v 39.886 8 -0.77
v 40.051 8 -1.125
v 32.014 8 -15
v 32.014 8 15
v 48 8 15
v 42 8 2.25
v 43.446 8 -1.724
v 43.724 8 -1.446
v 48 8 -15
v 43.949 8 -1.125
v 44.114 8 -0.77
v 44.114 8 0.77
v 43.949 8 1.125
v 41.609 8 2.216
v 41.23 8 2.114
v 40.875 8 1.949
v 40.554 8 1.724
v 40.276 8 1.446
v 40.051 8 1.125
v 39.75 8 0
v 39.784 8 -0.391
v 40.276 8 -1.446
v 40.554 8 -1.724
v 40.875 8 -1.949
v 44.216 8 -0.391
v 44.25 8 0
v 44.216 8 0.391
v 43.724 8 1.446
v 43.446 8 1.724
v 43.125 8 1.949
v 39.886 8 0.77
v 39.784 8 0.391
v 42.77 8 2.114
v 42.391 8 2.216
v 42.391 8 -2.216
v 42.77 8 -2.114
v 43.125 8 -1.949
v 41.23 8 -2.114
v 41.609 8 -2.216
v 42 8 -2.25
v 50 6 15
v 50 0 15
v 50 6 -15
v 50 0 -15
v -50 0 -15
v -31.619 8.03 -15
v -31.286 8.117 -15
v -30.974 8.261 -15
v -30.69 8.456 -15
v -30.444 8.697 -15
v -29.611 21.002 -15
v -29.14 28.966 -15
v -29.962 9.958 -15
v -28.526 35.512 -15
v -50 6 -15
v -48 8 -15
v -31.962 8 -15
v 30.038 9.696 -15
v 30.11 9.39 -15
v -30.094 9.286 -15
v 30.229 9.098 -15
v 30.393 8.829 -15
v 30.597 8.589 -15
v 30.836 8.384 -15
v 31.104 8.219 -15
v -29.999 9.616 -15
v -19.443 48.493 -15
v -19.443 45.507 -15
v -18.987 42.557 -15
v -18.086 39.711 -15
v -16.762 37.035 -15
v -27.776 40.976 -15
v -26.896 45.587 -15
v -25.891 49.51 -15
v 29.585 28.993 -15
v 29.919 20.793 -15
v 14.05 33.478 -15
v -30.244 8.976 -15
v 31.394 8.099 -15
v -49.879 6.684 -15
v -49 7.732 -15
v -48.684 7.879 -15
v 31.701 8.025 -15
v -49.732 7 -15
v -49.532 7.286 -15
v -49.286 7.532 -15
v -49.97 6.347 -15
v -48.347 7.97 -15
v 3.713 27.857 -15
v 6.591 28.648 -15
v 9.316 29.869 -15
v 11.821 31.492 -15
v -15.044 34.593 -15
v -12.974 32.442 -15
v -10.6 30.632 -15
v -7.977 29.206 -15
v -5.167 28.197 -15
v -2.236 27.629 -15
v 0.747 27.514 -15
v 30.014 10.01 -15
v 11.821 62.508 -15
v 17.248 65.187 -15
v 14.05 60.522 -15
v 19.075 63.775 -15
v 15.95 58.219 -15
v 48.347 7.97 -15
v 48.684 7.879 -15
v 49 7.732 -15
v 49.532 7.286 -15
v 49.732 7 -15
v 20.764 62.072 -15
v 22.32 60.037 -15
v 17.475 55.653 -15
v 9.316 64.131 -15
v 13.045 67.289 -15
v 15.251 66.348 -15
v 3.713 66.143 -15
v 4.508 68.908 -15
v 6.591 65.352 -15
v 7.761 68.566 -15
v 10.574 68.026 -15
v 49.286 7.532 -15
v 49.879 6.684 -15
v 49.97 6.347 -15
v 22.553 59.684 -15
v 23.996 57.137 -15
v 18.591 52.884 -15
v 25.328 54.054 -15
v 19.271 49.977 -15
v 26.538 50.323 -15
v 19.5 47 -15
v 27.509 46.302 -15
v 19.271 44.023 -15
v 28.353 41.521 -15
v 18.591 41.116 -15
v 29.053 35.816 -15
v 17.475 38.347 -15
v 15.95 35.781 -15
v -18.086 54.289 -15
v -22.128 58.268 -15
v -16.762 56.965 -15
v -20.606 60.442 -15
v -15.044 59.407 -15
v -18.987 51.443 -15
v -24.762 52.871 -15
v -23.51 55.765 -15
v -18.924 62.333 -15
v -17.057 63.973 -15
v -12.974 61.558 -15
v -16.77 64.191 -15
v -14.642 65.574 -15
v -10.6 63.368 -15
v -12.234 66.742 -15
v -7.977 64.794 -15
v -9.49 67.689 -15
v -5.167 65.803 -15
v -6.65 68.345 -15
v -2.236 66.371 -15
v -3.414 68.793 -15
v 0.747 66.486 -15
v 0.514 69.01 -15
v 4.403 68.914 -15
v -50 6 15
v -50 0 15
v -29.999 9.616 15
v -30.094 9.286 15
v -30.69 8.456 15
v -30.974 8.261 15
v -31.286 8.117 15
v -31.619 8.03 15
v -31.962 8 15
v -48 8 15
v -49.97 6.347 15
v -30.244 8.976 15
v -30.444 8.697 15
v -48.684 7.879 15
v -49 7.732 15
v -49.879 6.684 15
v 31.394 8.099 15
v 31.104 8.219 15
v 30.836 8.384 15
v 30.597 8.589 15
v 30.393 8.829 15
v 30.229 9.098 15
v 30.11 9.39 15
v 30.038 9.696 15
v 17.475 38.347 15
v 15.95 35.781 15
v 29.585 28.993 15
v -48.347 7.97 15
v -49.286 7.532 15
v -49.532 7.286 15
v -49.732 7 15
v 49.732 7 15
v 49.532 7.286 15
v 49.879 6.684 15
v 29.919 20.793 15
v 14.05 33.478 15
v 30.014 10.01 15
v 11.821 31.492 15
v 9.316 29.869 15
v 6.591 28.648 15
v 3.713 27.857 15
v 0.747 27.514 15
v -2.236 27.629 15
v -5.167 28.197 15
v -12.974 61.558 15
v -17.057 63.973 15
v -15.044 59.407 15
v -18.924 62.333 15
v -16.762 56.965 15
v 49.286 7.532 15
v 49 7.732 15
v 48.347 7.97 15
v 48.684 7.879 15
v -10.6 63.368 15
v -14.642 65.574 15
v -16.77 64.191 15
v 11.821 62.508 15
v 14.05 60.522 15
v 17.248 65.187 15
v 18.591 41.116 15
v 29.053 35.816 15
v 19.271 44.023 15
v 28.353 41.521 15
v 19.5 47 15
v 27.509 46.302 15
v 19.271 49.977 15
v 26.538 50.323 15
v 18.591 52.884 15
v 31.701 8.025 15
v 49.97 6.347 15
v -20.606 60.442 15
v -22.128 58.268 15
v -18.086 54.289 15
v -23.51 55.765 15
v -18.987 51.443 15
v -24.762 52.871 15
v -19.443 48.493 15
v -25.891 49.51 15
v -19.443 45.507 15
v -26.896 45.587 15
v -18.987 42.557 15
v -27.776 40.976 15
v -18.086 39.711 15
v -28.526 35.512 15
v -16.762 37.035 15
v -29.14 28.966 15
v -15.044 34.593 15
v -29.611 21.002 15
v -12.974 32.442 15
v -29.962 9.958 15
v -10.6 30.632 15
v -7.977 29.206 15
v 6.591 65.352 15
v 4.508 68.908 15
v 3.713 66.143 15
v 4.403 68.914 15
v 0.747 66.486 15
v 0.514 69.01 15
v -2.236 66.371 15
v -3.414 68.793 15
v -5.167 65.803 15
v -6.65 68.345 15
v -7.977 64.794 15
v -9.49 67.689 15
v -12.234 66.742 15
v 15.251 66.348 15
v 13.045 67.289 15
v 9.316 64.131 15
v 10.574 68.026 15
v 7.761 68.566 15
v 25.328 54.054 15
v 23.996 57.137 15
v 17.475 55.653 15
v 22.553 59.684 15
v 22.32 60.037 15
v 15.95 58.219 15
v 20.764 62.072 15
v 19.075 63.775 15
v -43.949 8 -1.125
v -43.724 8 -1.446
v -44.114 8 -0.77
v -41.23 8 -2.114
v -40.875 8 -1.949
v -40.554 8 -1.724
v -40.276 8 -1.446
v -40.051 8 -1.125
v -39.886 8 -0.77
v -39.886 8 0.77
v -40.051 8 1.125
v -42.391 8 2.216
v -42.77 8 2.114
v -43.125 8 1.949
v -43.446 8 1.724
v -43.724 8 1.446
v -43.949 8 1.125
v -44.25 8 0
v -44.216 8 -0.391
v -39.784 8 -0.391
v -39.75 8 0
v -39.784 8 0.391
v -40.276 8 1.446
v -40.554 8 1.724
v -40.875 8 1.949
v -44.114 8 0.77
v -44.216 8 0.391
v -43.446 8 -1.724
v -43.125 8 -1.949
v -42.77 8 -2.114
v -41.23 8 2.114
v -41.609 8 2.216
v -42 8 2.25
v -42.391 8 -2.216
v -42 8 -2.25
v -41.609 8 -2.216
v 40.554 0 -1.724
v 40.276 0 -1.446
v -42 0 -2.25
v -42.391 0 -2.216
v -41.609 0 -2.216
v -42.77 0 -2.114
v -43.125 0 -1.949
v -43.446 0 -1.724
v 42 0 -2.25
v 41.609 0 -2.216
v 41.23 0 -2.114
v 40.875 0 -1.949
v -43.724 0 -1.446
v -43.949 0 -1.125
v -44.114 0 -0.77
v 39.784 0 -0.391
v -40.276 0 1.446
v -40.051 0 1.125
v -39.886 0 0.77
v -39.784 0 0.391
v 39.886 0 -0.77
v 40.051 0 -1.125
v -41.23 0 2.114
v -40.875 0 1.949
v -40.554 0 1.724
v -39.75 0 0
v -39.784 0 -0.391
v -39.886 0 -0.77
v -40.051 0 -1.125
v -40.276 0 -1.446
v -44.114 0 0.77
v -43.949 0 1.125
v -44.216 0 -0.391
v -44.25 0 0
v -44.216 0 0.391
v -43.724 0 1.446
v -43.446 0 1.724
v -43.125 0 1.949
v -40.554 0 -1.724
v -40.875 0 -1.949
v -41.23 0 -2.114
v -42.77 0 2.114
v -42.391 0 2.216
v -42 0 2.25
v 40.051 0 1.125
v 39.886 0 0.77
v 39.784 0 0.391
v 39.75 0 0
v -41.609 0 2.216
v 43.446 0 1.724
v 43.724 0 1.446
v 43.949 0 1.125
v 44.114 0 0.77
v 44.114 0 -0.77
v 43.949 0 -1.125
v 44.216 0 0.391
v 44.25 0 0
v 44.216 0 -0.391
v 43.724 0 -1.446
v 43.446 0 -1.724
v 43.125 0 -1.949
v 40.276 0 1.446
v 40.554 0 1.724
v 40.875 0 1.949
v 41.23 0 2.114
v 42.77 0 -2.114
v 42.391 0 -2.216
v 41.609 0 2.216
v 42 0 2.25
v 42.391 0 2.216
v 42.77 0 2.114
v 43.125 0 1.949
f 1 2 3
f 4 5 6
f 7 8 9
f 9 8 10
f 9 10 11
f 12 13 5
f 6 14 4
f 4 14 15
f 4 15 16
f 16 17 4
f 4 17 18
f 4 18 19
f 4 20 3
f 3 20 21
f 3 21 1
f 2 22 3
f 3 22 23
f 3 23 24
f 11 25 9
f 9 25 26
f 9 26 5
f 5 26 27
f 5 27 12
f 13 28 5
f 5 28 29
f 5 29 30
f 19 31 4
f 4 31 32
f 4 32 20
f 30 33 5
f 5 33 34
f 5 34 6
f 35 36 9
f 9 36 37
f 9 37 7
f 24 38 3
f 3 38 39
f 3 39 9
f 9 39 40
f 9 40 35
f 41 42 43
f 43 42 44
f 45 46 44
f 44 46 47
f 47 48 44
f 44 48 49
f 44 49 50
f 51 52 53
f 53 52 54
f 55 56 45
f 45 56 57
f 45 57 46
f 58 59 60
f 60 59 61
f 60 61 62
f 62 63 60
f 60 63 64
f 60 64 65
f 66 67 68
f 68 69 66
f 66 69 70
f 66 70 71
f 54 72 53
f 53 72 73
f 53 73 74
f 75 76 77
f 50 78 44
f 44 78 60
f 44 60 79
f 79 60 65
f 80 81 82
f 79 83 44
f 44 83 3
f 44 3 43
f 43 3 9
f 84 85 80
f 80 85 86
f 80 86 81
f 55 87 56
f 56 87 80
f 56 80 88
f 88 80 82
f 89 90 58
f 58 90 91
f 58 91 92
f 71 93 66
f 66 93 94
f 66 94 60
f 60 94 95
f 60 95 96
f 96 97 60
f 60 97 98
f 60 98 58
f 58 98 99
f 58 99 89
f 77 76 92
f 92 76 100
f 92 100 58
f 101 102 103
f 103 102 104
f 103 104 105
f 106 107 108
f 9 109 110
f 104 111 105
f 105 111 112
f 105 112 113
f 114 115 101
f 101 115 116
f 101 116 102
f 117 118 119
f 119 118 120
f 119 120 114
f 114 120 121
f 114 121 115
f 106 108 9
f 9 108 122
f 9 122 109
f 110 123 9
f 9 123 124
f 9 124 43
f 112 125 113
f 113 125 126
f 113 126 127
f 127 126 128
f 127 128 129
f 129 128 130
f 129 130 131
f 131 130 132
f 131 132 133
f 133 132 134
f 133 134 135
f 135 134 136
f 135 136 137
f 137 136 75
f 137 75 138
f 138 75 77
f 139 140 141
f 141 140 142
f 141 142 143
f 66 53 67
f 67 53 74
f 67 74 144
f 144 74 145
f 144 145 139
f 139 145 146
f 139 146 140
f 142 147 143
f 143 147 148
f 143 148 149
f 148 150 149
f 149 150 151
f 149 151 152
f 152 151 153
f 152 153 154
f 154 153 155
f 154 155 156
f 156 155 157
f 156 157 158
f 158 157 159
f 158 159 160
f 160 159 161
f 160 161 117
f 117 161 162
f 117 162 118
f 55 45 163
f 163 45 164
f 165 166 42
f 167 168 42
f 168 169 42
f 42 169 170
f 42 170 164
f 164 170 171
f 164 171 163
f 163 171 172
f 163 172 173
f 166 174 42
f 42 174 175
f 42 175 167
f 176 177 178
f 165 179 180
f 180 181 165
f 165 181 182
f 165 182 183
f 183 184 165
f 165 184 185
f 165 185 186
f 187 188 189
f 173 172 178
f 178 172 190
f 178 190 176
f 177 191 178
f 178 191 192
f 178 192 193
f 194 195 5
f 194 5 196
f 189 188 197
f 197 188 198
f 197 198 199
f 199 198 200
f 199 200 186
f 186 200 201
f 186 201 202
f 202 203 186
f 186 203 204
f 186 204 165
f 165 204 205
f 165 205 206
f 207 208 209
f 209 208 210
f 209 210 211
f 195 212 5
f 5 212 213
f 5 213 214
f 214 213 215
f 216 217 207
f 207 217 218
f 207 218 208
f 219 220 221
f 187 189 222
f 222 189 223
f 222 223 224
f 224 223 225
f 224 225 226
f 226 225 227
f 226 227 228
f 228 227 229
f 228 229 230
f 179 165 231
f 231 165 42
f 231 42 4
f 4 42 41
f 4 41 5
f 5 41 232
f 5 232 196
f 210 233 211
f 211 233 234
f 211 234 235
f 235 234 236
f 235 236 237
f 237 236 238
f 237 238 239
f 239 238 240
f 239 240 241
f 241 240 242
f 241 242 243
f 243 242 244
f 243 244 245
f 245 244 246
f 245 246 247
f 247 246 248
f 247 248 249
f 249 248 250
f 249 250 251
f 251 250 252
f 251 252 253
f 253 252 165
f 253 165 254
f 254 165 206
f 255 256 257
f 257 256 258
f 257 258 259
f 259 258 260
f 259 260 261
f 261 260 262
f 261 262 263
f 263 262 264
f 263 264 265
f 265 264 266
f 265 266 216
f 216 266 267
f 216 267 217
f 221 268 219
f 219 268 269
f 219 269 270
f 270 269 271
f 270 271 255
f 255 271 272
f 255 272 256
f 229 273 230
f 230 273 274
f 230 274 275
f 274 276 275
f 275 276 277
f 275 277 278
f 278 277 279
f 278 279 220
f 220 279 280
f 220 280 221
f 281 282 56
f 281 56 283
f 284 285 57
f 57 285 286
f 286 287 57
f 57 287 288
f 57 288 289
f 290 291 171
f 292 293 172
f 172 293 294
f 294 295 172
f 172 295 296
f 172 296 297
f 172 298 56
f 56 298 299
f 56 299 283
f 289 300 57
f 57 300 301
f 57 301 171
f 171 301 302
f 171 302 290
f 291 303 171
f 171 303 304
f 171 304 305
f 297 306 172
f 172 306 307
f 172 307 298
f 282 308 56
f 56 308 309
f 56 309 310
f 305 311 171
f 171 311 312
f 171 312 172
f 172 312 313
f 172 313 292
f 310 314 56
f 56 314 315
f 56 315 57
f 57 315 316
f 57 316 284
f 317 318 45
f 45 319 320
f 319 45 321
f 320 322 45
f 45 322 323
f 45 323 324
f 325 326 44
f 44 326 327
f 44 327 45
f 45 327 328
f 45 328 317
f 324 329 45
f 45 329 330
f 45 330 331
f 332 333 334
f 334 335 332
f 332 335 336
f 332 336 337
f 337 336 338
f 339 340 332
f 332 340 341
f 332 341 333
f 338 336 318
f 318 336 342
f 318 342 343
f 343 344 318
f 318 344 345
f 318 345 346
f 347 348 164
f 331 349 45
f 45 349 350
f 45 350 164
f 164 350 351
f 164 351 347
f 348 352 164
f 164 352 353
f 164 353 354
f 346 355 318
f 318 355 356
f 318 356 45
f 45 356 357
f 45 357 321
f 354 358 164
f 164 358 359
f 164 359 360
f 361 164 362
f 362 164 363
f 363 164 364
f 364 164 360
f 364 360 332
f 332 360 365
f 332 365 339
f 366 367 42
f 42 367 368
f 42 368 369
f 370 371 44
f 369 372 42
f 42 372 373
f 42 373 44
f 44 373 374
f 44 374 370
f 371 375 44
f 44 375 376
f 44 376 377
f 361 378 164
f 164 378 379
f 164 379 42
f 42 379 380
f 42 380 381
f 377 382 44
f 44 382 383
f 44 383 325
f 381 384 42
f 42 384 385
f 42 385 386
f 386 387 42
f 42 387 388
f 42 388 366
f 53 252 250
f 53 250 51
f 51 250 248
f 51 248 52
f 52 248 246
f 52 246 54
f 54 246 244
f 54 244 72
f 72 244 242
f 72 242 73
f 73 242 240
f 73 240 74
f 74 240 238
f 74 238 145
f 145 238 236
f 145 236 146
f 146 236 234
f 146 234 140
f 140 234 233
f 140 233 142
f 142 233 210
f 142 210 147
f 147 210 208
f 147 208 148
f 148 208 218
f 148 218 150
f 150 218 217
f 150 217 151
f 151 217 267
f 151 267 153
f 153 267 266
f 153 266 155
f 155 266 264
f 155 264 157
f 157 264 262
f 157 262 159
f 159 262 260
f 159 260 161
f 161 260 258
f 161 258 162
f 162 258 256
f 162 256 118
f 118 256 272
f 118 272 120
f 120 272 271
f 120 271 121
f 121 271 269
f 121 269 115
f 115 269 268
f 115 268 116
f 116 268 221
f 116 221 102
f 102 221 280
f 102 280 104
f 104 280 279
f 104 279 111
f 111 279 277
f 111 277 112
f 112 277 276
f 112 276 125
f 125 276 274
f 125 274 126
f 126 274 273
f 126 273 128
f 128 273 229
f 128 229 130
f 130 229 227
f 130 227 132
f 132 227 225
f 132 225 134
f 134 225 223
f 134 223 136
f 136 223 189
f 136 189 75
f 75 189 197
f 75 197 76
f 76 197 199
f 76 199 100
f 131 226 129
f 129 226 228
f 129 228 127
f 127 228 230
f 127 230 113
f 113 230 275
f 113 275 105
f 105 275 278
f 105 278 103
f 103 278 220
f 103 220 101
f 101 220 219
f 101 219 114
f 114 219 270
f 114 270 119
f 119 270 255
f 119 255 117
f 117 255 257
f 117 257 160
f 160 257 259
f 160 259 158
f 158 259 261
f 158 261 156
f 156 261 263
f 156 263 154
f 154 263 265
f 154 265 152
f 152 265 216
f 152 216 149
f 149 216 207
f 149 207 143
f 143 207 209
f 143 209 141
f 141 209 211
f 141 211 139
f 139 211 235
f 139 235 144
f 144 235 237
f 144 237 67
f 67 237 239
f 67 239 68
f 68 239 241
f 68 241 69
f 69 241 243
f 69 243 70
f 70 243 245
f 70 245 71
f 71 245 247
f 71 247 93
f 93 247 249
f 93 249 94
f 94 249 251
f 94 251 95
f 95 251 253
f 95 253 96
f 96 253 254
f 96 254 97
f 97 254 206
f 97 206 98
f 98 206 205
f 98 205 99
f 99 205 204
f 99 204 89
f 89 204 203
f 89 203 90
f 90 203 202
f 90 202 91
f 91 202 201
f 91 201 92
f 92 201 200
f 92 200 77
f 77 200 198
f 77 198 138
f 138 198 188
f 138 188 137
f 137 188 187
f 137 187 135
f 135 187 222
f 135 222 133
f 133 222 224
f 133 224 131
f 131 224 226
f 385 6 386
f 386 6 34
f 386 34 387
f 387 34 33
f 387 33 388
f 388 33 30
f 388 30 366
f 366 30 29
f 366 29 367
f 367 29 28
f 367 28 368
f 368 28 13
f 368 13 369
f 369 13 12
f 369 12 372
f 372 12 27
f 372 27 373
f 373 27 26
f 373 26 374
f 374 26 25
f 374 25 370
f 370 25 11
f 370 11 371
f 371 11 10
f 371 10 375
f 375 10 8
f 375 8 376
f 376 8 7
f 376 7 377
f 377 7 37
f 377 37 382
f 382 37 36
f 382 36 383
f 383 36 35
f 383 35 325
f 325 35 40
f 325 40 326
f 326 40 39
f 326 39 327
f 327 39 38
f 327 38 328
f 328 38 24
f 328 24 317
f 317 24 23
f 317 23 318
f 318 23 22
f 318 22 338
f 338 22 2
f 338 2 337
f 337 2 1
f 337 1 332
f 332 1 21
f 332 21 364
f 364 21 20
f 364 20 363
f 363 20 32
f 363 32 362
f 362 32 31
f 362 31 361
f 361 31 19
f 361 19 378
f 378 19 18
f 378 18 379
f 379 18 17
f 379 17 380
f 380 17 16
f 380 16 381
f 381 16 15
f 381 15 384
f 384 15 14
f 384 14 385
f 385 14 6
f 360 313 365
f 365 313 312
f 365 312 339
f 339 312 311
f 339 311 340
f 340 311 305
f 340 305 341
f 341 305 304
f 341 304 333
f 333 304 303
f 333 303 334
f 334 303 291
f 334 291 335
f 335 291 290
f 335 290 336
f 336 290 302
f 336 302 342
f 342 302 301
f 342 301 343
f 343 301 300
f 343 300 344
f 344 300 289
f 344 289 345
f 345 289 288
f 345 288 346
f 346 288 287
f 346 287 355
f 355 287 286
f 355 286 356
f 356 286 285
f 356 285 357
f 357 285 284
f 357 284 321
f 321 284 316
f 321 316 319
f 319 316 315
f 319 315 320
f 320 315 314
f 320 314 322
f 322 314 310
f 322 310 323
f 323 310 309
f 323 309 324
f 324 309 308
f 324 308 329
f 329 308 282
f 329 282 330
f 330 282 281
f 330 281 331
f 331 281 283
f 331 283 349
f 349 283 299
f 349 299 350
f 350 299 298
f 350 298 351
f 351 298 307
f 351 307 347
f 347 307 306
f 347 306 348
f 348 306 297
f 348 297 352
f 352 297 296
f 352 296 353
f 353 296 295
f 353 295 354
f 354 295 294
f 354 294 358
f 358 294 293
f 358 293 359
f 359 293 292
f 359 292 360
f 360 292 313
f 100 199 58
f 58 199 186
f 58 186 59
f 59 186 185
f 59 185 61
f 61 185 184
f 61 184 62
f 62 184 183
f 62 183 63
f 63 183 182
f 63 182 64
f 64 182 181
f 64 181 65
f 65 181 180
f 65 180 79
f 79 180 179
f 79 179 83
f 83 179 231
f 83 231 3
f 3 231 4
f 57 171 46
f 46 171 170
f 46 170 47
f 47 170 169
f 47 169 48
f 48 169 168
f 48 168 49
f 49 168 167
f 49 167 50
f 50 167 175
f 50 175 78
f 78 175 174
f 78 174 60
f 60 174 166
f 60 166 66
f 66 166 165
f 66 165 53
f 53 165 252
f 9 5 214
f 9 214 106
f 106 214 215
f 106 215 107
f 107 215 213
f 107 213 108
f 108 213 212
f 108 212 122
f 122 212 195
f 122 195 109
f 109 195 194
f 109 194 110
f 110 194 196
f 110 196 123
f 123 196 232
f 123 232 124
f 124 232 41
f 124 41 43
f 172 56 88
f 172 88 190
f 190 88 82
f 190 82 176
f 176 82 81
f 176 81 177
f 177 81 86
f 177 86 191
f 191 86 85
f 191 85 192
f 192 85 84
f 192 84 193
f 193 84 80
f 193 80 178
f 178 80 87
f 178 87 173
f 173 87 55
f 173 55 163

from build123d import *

# Parameters (mm, degrees)
SKETCH1_W           = 100
SKETCH1_H           = 30
BOSS_EXTRUDE1_DEPTH = 8
BOSS_EXTRUDE2_DEPTH = 30
SKETCH3_R           = 19.5
CUT_EXTRUDE1_DEPTH  = 31.0000001
SKETCH4_R           = 2.25
CUT_EXTRUDE2_DEPTH  = 9.0000001
FILLET1_R           = 2


with BuildPart() as part:
    # Sketch1 → Boss-Extrude1 (new body)
    with BuildSketch(Plane(origin=(0, 0, 0), x_dir=(1, 0, 0), z_dir=(0, 1, 0))):
        Rectangle(SKETCH1_W, SKETCH1_H)
    extrude(amount=BOSS_EXTRUDE1_DEPTH)

    # Sketch2 → Boss-Extrude2 (add)
    with BuildSketch(Plane.XY.offset(15)):
        with BuildLine():
            Line((50, 8), (30, 8))
            add(Edge.make_bspline(
                [(-30, 8), (-29.294848192, 47.159550373), (-25.059451985, 68.493847629), (21.924040743, 69.715154385), (30.440802585, 55.381053133), (30, 8)],
                knots=[0, 0, 0, 0, 0.475247095, 0.575247095, 1, 1, 1, 1], degree=3))
            Line((-30, 8), (-50, 8))
            Line((-50, 8), (-50, 0))
            Line((-50, 0), (50, 0))
            Line((50, 0), (50, 8))
        make_face()
    extrude(amount=-BOSS_EXTRUDE2_DEPTH)

    # Sketch3 → Cut-Extrude1 (cut, through all)
    with BuildSketch(Plane.XY.offset(15)):
        with Locations((0, 47)):
            Circle(SKETCH3_R)
    extrude(amount=-CUT_EXTRUDE1_DEPTH, mode=Mode.SUBTRACT)

    # Sketch4 → Cut-Extrude2 (cut, through all)
    with BuildSketch(Plane(origin=(0, 8, 0), x_dir=(1, 0, 0), z_dir=(0, 1, 0))):
        with Locations((-42, 0)):
            Circle(SKETCH4_R)
        with Locations((42, 0)):
            Circle(SKETCH4_R)
    extrude(amount=-CUT_EXTRUDE2_DEPTH, mode=Mode.SUBTRACT)

    # Fillet1
    fillet1_edges = [part.edges().sort_by_distance(p)[0] for p in [
        (-30, 8, 0),
        (30, 8, 0),
        (50, 8, 0),
        (-50, 8, 0),
    ]]
    fillet(fillet1_edges, radius=FILLET1_R)


solid = part.part
